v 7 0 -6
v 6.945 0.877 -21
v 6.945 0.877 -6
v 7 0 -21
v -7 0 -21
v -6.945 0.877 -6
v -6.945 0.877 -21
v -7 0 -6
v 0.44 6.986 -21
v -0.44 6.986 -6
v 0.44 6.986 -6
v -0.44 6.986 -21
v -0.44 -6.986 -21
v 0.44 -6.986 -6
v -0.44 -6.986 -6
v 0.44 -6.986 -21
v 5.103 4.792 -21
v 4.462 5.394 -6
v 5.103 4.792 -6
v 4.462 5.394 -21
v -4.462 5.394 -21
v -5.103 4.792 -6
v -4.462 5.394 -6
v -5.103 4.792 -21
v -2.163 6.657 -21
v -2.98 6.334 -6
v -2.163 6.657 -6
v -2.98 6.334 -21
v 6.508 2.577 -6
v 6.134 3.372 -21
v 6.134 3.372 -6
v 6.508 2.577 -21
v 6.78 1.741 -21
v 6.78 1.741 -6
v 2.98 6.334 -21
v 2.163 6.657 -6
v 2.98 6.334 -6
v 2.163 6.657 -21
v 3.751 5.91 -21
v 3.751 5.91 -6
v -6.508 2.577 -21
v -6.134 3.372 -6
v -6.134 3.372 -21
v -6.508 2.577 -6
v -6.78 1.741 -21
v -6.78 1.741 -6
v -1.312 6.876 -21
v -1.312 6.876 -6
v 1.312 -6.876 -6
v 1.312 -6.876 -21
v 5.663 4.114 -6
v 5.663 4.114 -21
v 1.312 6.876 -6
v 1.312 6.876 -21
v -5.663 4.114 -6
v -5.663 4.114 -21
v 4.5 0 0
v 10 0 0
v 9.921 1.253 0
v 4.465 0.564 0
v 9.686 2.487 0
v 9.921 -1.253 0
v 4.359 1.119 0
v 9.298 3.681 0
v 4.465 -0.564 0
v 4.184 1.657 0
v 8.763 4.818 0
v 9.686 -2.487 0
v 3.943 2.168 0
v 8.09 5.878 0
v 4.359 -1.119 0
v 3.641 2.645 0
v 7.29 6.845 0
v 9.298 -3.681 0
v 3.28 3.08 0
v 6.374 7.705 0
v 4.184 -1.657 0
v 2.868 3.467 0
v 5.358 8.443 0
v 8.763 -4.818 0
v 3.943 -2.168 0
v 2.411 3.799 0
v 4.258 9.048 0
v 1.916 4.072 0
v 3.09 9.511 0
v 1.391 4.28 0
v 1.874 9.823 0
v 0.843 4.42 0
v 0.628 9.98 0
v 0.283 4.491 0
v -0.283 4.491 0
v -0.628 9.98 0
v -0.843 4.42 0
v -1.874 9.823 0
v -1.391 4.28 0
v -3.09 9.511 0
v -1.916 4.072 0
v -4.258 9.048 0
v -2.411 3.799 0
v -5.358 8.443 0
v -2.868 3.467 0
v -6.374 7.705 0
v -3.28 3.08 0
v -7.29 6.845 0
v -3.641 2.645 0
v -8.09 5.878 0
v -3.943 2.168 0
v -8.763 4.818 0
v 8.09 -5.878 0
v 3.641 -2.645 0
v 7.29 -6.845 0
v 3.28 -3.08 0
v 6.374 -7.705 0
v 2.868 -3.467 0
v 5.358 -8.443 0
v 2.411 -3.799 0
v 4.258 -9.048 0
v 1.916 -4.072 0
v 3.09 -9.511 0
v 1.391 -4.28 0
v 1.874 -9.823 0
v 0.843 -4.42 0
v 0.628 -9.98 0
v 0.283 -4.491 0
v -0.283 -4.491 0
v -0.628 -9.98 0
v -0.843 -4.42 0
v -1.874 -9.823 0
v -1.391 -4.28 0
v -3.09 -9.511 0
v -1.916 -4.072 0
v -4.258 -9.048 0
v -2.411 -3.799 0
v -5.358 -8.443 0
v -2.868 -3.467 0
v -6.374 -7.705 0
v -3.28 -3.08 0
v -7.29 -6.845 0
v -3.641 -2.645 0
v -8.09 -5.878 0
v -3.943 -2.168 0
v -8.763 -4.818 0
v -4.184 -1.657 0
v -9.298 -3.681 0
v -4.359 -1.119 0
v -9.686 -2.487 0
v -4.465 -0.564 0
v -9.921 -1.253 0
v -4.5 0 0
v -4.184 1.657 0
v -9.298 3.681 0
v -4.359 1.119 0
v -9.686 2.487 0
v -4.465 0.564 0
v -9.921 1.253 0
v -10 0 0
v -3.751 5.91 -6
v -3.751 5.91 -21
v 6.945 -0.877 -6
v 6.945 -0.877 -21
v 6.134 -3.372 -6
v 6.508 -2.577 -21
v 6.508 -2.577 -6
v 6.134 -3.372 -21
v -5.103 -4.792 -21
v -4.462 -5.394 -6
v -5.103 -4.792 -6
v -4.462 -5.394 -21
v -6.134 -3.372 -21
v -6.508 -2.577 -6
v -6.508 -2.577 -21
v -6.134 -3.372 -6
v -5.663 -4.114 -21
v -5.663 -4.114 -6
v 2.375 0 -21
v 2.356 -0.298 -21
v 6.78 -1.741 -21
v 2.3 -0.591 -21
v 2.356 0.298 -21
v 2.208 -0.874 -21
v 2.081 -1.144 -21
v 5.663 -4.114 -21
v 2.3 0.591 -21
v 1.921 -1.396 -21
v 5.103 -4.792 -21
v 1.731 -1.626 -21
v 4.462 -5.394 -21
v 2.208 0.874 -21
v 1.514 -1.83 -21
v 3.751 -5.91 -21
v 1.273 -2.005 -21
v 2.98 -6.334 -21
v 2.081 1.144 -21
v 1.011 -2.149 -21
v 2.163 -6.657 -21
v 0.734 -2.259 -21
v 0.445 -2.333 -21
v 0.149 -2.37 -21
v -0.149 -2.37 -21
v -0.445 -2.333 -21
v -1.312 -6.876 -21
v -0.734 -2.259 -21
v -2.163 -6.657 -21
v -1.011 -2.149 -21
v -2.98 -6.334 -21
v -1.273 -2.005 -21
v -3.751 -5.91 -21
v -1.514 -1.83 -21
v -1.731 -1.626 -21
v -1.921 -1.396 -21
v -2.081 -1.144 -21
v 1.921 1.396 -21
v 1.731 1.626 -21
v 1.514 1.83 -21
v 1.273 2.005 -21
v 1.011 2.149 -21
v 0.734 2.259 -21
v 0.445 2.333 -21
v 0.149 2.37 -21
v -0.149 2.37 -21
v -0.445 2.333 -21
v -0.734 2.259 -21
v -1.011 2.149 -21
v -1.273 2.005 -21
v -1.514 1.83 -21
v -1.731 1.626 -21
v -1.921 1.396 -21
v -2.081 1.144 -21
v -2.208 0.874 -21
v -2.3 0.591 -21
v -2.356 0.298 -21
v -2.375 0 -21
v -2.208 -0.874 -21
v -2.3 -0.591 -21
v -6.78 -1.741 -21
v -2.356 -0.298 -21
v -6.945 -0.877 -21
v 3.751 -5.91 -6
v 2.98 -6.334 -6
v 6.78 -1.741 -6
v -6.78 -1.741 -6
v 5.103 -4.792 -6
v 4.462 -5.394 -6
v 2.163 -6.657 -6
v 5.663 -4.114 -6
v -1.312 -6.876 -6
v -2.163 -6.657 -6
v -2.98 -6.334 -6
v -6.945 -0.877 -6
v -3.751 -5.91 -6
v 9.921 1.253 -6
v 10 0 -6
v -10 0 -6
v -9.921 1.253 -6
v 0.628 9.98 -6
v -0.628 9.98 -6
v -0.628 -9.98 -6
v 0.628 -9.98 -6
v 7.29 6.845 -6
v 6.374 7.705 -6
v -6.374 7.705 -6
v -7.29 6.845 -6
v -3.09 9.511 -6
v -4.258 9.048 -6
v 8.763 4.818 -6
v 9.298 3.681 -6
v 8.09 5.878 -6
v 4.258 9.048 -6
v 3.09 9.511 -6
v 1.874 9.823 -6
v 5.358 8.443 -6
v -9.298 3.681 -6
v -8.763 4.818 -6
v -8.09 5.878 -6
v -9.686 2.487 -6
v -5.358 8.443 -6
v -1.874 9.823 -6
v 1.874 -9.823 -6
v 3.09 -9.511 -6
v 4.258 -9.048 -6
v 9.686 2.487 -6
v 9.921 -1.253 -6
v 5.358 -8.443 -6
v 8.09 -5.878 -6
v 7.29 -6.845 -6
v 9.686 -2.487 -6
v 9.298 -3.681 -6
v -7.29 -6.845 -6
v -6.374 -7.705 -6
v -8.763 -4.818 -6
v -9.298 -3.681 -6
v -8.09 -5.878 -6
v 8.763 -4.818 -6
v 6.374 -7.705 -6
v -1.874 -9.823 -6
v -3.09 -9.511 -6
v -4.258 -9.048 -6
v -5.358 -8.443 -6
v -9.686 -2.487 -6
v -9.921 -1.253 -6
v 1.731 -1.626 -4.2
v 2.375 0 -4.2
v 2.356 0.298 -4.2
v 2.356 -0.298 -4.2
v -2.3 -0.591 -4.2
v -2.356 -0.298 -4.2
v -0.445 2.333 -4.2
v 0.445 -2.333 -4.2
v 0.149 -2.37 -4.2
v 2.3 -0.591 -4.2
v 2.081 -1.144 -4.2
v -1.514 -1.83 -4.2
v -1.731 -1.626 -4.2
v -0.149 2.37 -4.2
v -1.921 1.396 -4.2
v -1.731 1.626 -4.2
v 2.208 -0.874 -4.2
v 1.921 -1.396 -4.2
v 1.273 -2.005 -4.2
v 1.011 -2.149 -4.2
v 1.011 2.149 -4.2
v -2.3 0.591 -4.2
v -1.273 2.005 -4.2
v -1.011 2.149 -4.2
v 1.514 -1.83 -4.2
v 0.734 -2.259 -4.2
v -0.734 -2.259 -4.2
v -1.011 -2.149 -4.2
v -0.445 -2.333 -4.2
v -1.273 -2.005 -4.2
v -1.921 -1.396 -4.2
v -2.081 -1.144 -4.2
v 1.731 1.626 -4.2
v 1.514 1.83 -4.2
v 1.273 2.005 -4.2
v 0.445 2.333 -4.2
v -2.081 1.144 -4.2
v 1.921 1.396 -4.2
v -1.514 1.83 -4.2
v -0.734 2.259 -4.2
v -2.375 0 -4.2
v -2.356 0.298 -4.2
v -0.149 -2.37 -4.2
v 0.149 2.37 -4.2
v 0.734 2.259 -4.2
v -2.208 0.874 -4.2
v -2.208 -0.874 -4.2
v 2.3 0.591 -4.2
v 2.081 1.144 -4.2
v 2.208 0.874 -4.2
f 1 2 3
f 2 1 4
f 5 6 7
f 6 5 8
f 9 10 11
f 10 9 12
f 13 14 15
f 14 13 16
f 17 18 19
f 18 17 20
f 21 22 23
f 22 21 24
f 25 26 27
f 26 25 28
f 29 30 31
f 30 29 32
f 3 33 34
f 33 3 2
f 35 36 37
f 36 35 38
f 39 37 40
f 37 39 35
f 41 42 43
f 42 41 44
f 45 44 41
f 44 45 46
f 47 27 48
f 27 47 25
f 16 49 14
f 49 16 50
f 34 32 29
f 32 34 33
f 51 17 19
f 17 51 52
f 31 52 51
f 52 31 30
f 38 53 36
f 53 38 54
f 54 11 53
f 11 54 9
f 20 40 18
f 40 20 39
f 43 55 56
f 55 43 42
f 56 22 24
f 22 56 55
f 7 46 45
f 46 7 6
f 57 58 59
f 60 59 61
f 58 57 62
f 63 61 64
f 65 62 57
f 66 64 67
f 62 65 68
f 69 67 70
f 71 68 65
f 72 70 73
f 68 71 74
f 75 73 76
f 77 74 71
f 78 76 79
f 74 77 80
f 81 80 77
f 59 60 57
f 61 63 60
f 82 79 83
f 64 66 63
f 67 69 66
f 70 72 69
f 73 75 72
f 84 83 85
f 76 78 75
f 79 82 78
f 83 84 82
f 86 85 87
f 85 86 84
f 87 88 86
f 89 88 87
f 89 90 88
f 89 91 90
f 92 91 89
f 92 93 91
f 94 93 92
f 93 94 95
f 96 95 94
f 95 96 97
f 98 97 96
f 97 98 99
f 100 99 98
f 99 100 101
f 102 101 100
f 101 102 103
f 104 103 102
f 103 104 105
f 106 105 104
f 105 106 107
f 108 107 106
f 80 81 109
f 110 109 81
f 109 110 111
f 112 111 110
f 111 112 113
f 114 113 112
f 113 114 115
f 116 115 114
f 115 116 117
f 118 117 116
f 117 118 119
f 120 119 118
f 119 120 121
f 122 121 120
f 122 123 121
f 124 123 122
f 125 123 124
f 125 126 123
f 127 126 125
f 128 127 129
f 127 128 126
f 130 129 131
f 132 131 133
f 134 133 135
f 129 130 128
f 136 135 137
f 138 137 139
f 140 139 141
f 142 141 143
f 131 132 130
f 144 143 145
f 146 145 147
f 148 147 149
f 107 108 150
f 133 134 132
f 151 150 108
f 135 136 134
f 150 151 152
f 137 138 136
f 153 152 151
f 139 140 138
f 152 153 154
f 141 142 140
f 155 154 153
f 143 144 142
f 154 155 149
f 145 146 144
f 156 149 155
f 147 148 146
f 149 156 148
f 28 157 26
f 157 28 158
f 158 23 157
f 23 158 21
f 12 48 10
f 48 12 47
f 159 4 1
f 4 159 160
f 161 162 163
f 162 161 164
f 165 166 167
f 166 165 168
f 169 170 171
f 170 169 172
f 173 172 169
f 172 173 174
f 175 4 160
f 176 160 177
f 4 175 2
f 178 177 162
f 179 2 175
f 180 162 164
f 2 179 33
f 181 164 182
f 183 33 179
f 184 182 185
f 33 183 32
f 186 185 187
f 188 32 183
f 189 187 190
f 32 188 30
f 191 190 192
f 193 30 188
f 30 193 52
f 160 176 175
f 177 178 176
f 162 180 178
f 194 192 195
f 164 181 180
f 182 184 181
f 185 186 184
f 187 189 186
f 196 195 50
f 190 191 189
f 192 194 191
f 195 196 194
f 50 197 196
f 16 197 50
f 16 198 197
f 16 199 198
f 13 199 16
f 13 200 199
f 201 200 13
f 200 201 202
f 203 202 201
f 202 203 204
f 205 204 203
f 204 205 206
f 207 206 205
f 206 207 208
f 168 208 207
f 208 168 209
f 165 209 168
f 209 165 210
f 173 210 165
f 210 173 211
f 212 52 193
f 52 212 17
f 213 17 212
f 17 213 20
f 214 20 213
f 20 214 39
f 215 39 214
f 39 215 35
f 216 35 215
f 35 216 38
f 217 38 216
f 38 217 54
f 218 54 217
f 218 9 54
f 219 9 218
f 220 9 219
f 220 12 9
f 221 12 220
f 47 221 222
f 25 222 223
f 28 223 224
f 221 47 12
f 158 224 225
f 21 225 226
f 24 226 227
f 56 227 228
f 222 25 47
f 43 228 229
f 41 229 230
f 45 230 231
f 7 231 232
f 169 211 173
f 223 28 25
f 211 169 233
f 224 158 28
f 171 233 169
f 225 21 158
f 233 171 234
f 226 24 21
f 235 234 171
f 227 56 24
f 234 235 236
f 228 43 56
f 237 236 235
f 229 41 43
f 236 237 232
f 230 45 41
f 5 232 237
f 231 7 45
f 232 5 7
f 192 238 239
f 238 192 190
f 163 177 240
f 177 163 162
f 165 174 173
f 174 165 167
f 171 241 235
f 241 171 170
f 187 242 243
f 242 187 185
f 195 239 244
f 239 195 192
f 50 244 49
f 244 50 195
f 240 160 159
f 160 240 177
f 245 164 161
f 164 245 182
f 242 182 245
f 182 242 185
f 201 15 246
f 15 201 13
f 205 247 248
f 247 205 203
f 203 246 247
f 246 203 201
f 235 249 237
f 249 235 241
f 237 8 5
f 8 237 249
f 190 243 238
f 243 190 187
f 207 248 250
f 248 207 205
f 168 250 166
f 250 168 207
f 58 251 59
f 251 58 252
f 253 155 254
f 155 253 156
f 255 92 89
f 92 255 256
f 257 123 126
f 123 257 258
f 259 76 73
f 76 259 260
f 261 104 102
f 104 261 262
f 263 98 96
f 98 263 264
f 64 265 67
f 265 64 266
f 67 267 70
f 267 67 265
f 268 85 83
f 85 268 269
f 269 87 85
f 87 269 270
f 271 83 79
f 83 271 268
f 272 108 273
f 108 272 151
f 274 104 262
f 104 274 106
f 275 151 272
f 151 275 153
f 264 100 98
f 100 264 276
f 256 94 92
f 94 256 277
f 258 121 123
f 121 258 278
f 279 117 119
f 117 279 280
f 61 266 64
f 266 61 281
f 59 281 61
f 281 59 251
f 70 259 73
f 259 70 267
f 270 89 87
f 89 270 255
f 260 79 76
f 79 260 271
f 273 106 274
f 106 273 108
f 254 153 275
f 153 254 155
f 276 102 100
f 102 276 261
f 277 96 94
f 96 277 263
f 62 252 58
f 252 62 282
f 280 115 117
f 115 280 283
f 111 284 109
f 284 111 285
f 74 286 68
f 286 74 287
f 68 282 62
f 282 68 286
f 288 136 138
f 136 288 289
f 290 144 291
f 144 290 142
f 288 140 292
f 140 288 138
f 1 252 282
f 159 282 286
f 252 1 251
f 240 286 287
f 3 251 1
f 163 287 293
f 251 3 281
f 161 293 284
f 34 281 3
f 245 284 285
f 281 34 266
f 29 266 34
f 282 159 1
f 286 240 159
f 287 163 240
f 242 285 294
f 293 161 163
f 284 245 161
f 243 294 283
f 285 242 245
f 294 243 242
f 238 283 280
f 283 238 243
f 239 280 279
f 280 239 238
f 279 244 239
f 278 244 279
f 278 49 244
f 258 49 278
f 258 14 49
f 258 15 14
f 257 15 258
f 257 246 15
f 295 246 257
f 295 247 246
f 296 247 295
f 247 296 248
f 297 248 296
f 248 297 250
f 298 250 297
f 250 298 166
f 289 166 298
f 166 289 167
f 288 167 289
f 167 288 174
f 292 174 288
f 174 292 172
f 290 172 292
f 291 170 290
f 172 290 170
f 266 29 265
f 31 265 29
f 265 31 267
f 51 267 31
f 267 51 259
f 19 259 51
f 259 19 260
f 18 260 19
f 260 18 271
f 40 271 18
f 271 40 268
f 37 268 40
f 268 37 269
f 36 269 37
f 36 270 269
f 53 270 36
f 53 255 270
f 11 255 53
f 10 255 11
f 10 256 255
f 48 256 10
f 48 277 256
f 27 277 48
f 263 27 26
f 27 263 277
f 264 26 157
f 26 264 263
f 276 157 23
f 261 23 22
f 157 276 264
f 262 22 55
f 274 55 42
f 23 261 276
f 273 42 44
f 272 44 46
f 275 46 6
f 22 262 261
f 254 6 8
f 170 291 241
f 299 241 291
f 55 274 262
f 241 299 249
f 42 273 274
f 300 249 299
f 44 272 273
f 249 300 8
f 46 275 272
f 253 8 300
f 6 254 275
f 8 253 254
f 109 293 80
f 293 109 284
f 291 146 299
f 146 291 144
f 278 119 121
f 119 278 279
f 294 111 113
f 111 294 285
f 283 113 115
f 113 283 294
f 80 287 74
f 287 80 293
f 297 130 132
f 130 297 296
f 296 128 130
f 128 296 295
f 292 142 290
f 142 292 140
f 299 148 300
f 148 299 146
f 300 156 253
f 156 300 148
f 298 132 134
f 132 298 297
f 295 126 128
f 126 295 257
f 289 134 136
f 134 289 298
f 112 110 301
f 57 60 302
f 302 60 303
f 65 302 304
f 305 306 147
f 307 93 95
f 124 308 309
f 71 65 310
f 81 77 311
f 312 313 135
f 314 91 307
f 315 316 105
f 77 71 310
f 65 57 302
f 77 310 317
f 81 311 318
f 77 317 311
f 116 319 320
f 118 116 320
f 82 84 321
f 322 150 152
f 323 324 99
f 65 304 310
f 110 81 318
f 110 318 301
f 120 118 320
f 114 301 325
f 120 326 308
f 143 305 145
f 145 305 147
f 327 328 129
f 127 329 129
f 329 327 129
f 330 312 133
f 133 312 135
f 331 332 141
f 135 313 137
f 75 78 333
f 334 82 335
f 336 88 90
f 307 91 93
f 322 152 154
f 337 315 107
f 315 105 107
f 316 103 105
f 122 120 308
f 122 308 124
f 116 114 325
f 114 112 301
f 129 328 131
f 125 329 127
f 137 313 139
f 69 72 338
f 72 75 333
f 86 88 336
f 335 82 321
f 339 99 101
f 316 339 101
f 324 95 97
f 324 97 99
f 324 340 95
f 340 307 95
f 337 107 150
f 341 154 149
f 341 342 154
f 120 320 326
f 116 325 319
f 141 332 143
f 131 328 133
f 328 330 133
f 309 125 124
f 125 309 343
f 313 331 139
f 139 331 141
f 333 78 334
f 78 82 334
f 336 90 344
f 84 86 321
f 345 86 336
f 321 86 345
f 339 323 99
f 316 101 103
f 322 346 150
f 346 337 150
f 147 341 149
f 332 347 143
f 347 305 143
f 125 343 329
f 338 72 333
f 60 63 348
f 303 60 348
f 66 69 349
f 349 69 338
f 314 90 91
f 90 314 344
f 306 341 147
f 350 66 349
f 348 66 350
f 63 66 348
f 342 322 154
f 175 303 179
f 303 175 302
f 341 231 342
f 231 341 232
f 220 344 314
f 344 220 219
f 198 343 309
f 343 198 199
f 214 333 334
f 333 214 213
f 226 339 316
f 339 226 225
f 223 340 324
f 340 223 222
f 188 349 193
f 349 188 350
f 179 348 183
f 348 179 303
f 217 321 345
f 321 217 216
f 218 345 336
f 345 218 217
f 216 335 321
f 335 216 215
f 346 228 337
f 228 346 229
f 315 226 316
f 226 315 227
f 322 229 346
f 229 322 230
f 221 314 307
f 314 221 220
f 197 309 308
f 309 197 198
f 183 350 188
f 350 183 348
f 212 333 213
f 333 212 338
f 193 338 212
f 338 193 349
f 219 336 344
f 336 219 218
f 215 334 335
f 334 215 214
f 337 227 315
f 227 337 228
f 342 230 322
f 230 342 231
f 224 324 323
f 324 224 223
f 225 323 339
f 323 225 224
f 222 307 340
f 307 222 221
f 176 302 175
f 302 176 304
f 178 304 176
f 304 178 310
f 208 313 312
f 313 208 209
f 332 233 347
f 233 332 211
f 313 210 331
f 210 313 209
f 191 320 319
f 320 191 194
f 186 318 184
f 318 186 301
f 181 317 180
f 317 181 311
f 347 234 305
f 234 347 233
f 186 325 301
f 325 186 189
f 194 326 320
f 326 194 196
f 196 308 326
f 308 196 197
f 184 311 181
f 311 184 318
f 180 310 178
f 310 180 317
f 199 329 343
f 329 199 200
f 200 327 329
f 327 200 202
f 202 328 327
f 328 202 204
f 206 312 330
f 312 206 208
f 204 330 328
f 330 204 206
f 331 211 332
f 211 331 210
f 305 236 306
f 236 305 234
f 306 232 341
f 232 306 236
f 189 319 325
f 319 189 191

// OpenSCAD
$fn = 50;


difference() {
	union() {
		translate(v = [0, 0, -21.0000000000]) {
			cylinder(h = 21, r = 7.0000000000);
		}
		translate(v = [0, 0, -6.0000000000]) {
			cylinder(h = 6, r = 10.0000000000);
		}
	}
	union() {
		translate(v = [0, 0, 0]) {
			rotate(a = [0, 0, 0]) {
				difference() {
					union() {
						#translate(v = [0, 0, -21.0000000000]) {
							cylinder(h = 21, r = 2.2500000000);
						}
						#translate(v = [0, 0, -4.2000000000]) {
							cylinder(h = 4.2000000000, r1 = 2.3750000000, r2 = 4.5000000000);
						}
						#translate(v = [0, 0, -21.0000000000]) {
							cylinder(h = 21, r = 2.3750000000);
						}
						#translate(v = [0, 0, -21.0000000000]) {
							cylinder(h = 21, r = 2.2500000000);
						}
					}
					union();
				}
			}
		}
	}
}
